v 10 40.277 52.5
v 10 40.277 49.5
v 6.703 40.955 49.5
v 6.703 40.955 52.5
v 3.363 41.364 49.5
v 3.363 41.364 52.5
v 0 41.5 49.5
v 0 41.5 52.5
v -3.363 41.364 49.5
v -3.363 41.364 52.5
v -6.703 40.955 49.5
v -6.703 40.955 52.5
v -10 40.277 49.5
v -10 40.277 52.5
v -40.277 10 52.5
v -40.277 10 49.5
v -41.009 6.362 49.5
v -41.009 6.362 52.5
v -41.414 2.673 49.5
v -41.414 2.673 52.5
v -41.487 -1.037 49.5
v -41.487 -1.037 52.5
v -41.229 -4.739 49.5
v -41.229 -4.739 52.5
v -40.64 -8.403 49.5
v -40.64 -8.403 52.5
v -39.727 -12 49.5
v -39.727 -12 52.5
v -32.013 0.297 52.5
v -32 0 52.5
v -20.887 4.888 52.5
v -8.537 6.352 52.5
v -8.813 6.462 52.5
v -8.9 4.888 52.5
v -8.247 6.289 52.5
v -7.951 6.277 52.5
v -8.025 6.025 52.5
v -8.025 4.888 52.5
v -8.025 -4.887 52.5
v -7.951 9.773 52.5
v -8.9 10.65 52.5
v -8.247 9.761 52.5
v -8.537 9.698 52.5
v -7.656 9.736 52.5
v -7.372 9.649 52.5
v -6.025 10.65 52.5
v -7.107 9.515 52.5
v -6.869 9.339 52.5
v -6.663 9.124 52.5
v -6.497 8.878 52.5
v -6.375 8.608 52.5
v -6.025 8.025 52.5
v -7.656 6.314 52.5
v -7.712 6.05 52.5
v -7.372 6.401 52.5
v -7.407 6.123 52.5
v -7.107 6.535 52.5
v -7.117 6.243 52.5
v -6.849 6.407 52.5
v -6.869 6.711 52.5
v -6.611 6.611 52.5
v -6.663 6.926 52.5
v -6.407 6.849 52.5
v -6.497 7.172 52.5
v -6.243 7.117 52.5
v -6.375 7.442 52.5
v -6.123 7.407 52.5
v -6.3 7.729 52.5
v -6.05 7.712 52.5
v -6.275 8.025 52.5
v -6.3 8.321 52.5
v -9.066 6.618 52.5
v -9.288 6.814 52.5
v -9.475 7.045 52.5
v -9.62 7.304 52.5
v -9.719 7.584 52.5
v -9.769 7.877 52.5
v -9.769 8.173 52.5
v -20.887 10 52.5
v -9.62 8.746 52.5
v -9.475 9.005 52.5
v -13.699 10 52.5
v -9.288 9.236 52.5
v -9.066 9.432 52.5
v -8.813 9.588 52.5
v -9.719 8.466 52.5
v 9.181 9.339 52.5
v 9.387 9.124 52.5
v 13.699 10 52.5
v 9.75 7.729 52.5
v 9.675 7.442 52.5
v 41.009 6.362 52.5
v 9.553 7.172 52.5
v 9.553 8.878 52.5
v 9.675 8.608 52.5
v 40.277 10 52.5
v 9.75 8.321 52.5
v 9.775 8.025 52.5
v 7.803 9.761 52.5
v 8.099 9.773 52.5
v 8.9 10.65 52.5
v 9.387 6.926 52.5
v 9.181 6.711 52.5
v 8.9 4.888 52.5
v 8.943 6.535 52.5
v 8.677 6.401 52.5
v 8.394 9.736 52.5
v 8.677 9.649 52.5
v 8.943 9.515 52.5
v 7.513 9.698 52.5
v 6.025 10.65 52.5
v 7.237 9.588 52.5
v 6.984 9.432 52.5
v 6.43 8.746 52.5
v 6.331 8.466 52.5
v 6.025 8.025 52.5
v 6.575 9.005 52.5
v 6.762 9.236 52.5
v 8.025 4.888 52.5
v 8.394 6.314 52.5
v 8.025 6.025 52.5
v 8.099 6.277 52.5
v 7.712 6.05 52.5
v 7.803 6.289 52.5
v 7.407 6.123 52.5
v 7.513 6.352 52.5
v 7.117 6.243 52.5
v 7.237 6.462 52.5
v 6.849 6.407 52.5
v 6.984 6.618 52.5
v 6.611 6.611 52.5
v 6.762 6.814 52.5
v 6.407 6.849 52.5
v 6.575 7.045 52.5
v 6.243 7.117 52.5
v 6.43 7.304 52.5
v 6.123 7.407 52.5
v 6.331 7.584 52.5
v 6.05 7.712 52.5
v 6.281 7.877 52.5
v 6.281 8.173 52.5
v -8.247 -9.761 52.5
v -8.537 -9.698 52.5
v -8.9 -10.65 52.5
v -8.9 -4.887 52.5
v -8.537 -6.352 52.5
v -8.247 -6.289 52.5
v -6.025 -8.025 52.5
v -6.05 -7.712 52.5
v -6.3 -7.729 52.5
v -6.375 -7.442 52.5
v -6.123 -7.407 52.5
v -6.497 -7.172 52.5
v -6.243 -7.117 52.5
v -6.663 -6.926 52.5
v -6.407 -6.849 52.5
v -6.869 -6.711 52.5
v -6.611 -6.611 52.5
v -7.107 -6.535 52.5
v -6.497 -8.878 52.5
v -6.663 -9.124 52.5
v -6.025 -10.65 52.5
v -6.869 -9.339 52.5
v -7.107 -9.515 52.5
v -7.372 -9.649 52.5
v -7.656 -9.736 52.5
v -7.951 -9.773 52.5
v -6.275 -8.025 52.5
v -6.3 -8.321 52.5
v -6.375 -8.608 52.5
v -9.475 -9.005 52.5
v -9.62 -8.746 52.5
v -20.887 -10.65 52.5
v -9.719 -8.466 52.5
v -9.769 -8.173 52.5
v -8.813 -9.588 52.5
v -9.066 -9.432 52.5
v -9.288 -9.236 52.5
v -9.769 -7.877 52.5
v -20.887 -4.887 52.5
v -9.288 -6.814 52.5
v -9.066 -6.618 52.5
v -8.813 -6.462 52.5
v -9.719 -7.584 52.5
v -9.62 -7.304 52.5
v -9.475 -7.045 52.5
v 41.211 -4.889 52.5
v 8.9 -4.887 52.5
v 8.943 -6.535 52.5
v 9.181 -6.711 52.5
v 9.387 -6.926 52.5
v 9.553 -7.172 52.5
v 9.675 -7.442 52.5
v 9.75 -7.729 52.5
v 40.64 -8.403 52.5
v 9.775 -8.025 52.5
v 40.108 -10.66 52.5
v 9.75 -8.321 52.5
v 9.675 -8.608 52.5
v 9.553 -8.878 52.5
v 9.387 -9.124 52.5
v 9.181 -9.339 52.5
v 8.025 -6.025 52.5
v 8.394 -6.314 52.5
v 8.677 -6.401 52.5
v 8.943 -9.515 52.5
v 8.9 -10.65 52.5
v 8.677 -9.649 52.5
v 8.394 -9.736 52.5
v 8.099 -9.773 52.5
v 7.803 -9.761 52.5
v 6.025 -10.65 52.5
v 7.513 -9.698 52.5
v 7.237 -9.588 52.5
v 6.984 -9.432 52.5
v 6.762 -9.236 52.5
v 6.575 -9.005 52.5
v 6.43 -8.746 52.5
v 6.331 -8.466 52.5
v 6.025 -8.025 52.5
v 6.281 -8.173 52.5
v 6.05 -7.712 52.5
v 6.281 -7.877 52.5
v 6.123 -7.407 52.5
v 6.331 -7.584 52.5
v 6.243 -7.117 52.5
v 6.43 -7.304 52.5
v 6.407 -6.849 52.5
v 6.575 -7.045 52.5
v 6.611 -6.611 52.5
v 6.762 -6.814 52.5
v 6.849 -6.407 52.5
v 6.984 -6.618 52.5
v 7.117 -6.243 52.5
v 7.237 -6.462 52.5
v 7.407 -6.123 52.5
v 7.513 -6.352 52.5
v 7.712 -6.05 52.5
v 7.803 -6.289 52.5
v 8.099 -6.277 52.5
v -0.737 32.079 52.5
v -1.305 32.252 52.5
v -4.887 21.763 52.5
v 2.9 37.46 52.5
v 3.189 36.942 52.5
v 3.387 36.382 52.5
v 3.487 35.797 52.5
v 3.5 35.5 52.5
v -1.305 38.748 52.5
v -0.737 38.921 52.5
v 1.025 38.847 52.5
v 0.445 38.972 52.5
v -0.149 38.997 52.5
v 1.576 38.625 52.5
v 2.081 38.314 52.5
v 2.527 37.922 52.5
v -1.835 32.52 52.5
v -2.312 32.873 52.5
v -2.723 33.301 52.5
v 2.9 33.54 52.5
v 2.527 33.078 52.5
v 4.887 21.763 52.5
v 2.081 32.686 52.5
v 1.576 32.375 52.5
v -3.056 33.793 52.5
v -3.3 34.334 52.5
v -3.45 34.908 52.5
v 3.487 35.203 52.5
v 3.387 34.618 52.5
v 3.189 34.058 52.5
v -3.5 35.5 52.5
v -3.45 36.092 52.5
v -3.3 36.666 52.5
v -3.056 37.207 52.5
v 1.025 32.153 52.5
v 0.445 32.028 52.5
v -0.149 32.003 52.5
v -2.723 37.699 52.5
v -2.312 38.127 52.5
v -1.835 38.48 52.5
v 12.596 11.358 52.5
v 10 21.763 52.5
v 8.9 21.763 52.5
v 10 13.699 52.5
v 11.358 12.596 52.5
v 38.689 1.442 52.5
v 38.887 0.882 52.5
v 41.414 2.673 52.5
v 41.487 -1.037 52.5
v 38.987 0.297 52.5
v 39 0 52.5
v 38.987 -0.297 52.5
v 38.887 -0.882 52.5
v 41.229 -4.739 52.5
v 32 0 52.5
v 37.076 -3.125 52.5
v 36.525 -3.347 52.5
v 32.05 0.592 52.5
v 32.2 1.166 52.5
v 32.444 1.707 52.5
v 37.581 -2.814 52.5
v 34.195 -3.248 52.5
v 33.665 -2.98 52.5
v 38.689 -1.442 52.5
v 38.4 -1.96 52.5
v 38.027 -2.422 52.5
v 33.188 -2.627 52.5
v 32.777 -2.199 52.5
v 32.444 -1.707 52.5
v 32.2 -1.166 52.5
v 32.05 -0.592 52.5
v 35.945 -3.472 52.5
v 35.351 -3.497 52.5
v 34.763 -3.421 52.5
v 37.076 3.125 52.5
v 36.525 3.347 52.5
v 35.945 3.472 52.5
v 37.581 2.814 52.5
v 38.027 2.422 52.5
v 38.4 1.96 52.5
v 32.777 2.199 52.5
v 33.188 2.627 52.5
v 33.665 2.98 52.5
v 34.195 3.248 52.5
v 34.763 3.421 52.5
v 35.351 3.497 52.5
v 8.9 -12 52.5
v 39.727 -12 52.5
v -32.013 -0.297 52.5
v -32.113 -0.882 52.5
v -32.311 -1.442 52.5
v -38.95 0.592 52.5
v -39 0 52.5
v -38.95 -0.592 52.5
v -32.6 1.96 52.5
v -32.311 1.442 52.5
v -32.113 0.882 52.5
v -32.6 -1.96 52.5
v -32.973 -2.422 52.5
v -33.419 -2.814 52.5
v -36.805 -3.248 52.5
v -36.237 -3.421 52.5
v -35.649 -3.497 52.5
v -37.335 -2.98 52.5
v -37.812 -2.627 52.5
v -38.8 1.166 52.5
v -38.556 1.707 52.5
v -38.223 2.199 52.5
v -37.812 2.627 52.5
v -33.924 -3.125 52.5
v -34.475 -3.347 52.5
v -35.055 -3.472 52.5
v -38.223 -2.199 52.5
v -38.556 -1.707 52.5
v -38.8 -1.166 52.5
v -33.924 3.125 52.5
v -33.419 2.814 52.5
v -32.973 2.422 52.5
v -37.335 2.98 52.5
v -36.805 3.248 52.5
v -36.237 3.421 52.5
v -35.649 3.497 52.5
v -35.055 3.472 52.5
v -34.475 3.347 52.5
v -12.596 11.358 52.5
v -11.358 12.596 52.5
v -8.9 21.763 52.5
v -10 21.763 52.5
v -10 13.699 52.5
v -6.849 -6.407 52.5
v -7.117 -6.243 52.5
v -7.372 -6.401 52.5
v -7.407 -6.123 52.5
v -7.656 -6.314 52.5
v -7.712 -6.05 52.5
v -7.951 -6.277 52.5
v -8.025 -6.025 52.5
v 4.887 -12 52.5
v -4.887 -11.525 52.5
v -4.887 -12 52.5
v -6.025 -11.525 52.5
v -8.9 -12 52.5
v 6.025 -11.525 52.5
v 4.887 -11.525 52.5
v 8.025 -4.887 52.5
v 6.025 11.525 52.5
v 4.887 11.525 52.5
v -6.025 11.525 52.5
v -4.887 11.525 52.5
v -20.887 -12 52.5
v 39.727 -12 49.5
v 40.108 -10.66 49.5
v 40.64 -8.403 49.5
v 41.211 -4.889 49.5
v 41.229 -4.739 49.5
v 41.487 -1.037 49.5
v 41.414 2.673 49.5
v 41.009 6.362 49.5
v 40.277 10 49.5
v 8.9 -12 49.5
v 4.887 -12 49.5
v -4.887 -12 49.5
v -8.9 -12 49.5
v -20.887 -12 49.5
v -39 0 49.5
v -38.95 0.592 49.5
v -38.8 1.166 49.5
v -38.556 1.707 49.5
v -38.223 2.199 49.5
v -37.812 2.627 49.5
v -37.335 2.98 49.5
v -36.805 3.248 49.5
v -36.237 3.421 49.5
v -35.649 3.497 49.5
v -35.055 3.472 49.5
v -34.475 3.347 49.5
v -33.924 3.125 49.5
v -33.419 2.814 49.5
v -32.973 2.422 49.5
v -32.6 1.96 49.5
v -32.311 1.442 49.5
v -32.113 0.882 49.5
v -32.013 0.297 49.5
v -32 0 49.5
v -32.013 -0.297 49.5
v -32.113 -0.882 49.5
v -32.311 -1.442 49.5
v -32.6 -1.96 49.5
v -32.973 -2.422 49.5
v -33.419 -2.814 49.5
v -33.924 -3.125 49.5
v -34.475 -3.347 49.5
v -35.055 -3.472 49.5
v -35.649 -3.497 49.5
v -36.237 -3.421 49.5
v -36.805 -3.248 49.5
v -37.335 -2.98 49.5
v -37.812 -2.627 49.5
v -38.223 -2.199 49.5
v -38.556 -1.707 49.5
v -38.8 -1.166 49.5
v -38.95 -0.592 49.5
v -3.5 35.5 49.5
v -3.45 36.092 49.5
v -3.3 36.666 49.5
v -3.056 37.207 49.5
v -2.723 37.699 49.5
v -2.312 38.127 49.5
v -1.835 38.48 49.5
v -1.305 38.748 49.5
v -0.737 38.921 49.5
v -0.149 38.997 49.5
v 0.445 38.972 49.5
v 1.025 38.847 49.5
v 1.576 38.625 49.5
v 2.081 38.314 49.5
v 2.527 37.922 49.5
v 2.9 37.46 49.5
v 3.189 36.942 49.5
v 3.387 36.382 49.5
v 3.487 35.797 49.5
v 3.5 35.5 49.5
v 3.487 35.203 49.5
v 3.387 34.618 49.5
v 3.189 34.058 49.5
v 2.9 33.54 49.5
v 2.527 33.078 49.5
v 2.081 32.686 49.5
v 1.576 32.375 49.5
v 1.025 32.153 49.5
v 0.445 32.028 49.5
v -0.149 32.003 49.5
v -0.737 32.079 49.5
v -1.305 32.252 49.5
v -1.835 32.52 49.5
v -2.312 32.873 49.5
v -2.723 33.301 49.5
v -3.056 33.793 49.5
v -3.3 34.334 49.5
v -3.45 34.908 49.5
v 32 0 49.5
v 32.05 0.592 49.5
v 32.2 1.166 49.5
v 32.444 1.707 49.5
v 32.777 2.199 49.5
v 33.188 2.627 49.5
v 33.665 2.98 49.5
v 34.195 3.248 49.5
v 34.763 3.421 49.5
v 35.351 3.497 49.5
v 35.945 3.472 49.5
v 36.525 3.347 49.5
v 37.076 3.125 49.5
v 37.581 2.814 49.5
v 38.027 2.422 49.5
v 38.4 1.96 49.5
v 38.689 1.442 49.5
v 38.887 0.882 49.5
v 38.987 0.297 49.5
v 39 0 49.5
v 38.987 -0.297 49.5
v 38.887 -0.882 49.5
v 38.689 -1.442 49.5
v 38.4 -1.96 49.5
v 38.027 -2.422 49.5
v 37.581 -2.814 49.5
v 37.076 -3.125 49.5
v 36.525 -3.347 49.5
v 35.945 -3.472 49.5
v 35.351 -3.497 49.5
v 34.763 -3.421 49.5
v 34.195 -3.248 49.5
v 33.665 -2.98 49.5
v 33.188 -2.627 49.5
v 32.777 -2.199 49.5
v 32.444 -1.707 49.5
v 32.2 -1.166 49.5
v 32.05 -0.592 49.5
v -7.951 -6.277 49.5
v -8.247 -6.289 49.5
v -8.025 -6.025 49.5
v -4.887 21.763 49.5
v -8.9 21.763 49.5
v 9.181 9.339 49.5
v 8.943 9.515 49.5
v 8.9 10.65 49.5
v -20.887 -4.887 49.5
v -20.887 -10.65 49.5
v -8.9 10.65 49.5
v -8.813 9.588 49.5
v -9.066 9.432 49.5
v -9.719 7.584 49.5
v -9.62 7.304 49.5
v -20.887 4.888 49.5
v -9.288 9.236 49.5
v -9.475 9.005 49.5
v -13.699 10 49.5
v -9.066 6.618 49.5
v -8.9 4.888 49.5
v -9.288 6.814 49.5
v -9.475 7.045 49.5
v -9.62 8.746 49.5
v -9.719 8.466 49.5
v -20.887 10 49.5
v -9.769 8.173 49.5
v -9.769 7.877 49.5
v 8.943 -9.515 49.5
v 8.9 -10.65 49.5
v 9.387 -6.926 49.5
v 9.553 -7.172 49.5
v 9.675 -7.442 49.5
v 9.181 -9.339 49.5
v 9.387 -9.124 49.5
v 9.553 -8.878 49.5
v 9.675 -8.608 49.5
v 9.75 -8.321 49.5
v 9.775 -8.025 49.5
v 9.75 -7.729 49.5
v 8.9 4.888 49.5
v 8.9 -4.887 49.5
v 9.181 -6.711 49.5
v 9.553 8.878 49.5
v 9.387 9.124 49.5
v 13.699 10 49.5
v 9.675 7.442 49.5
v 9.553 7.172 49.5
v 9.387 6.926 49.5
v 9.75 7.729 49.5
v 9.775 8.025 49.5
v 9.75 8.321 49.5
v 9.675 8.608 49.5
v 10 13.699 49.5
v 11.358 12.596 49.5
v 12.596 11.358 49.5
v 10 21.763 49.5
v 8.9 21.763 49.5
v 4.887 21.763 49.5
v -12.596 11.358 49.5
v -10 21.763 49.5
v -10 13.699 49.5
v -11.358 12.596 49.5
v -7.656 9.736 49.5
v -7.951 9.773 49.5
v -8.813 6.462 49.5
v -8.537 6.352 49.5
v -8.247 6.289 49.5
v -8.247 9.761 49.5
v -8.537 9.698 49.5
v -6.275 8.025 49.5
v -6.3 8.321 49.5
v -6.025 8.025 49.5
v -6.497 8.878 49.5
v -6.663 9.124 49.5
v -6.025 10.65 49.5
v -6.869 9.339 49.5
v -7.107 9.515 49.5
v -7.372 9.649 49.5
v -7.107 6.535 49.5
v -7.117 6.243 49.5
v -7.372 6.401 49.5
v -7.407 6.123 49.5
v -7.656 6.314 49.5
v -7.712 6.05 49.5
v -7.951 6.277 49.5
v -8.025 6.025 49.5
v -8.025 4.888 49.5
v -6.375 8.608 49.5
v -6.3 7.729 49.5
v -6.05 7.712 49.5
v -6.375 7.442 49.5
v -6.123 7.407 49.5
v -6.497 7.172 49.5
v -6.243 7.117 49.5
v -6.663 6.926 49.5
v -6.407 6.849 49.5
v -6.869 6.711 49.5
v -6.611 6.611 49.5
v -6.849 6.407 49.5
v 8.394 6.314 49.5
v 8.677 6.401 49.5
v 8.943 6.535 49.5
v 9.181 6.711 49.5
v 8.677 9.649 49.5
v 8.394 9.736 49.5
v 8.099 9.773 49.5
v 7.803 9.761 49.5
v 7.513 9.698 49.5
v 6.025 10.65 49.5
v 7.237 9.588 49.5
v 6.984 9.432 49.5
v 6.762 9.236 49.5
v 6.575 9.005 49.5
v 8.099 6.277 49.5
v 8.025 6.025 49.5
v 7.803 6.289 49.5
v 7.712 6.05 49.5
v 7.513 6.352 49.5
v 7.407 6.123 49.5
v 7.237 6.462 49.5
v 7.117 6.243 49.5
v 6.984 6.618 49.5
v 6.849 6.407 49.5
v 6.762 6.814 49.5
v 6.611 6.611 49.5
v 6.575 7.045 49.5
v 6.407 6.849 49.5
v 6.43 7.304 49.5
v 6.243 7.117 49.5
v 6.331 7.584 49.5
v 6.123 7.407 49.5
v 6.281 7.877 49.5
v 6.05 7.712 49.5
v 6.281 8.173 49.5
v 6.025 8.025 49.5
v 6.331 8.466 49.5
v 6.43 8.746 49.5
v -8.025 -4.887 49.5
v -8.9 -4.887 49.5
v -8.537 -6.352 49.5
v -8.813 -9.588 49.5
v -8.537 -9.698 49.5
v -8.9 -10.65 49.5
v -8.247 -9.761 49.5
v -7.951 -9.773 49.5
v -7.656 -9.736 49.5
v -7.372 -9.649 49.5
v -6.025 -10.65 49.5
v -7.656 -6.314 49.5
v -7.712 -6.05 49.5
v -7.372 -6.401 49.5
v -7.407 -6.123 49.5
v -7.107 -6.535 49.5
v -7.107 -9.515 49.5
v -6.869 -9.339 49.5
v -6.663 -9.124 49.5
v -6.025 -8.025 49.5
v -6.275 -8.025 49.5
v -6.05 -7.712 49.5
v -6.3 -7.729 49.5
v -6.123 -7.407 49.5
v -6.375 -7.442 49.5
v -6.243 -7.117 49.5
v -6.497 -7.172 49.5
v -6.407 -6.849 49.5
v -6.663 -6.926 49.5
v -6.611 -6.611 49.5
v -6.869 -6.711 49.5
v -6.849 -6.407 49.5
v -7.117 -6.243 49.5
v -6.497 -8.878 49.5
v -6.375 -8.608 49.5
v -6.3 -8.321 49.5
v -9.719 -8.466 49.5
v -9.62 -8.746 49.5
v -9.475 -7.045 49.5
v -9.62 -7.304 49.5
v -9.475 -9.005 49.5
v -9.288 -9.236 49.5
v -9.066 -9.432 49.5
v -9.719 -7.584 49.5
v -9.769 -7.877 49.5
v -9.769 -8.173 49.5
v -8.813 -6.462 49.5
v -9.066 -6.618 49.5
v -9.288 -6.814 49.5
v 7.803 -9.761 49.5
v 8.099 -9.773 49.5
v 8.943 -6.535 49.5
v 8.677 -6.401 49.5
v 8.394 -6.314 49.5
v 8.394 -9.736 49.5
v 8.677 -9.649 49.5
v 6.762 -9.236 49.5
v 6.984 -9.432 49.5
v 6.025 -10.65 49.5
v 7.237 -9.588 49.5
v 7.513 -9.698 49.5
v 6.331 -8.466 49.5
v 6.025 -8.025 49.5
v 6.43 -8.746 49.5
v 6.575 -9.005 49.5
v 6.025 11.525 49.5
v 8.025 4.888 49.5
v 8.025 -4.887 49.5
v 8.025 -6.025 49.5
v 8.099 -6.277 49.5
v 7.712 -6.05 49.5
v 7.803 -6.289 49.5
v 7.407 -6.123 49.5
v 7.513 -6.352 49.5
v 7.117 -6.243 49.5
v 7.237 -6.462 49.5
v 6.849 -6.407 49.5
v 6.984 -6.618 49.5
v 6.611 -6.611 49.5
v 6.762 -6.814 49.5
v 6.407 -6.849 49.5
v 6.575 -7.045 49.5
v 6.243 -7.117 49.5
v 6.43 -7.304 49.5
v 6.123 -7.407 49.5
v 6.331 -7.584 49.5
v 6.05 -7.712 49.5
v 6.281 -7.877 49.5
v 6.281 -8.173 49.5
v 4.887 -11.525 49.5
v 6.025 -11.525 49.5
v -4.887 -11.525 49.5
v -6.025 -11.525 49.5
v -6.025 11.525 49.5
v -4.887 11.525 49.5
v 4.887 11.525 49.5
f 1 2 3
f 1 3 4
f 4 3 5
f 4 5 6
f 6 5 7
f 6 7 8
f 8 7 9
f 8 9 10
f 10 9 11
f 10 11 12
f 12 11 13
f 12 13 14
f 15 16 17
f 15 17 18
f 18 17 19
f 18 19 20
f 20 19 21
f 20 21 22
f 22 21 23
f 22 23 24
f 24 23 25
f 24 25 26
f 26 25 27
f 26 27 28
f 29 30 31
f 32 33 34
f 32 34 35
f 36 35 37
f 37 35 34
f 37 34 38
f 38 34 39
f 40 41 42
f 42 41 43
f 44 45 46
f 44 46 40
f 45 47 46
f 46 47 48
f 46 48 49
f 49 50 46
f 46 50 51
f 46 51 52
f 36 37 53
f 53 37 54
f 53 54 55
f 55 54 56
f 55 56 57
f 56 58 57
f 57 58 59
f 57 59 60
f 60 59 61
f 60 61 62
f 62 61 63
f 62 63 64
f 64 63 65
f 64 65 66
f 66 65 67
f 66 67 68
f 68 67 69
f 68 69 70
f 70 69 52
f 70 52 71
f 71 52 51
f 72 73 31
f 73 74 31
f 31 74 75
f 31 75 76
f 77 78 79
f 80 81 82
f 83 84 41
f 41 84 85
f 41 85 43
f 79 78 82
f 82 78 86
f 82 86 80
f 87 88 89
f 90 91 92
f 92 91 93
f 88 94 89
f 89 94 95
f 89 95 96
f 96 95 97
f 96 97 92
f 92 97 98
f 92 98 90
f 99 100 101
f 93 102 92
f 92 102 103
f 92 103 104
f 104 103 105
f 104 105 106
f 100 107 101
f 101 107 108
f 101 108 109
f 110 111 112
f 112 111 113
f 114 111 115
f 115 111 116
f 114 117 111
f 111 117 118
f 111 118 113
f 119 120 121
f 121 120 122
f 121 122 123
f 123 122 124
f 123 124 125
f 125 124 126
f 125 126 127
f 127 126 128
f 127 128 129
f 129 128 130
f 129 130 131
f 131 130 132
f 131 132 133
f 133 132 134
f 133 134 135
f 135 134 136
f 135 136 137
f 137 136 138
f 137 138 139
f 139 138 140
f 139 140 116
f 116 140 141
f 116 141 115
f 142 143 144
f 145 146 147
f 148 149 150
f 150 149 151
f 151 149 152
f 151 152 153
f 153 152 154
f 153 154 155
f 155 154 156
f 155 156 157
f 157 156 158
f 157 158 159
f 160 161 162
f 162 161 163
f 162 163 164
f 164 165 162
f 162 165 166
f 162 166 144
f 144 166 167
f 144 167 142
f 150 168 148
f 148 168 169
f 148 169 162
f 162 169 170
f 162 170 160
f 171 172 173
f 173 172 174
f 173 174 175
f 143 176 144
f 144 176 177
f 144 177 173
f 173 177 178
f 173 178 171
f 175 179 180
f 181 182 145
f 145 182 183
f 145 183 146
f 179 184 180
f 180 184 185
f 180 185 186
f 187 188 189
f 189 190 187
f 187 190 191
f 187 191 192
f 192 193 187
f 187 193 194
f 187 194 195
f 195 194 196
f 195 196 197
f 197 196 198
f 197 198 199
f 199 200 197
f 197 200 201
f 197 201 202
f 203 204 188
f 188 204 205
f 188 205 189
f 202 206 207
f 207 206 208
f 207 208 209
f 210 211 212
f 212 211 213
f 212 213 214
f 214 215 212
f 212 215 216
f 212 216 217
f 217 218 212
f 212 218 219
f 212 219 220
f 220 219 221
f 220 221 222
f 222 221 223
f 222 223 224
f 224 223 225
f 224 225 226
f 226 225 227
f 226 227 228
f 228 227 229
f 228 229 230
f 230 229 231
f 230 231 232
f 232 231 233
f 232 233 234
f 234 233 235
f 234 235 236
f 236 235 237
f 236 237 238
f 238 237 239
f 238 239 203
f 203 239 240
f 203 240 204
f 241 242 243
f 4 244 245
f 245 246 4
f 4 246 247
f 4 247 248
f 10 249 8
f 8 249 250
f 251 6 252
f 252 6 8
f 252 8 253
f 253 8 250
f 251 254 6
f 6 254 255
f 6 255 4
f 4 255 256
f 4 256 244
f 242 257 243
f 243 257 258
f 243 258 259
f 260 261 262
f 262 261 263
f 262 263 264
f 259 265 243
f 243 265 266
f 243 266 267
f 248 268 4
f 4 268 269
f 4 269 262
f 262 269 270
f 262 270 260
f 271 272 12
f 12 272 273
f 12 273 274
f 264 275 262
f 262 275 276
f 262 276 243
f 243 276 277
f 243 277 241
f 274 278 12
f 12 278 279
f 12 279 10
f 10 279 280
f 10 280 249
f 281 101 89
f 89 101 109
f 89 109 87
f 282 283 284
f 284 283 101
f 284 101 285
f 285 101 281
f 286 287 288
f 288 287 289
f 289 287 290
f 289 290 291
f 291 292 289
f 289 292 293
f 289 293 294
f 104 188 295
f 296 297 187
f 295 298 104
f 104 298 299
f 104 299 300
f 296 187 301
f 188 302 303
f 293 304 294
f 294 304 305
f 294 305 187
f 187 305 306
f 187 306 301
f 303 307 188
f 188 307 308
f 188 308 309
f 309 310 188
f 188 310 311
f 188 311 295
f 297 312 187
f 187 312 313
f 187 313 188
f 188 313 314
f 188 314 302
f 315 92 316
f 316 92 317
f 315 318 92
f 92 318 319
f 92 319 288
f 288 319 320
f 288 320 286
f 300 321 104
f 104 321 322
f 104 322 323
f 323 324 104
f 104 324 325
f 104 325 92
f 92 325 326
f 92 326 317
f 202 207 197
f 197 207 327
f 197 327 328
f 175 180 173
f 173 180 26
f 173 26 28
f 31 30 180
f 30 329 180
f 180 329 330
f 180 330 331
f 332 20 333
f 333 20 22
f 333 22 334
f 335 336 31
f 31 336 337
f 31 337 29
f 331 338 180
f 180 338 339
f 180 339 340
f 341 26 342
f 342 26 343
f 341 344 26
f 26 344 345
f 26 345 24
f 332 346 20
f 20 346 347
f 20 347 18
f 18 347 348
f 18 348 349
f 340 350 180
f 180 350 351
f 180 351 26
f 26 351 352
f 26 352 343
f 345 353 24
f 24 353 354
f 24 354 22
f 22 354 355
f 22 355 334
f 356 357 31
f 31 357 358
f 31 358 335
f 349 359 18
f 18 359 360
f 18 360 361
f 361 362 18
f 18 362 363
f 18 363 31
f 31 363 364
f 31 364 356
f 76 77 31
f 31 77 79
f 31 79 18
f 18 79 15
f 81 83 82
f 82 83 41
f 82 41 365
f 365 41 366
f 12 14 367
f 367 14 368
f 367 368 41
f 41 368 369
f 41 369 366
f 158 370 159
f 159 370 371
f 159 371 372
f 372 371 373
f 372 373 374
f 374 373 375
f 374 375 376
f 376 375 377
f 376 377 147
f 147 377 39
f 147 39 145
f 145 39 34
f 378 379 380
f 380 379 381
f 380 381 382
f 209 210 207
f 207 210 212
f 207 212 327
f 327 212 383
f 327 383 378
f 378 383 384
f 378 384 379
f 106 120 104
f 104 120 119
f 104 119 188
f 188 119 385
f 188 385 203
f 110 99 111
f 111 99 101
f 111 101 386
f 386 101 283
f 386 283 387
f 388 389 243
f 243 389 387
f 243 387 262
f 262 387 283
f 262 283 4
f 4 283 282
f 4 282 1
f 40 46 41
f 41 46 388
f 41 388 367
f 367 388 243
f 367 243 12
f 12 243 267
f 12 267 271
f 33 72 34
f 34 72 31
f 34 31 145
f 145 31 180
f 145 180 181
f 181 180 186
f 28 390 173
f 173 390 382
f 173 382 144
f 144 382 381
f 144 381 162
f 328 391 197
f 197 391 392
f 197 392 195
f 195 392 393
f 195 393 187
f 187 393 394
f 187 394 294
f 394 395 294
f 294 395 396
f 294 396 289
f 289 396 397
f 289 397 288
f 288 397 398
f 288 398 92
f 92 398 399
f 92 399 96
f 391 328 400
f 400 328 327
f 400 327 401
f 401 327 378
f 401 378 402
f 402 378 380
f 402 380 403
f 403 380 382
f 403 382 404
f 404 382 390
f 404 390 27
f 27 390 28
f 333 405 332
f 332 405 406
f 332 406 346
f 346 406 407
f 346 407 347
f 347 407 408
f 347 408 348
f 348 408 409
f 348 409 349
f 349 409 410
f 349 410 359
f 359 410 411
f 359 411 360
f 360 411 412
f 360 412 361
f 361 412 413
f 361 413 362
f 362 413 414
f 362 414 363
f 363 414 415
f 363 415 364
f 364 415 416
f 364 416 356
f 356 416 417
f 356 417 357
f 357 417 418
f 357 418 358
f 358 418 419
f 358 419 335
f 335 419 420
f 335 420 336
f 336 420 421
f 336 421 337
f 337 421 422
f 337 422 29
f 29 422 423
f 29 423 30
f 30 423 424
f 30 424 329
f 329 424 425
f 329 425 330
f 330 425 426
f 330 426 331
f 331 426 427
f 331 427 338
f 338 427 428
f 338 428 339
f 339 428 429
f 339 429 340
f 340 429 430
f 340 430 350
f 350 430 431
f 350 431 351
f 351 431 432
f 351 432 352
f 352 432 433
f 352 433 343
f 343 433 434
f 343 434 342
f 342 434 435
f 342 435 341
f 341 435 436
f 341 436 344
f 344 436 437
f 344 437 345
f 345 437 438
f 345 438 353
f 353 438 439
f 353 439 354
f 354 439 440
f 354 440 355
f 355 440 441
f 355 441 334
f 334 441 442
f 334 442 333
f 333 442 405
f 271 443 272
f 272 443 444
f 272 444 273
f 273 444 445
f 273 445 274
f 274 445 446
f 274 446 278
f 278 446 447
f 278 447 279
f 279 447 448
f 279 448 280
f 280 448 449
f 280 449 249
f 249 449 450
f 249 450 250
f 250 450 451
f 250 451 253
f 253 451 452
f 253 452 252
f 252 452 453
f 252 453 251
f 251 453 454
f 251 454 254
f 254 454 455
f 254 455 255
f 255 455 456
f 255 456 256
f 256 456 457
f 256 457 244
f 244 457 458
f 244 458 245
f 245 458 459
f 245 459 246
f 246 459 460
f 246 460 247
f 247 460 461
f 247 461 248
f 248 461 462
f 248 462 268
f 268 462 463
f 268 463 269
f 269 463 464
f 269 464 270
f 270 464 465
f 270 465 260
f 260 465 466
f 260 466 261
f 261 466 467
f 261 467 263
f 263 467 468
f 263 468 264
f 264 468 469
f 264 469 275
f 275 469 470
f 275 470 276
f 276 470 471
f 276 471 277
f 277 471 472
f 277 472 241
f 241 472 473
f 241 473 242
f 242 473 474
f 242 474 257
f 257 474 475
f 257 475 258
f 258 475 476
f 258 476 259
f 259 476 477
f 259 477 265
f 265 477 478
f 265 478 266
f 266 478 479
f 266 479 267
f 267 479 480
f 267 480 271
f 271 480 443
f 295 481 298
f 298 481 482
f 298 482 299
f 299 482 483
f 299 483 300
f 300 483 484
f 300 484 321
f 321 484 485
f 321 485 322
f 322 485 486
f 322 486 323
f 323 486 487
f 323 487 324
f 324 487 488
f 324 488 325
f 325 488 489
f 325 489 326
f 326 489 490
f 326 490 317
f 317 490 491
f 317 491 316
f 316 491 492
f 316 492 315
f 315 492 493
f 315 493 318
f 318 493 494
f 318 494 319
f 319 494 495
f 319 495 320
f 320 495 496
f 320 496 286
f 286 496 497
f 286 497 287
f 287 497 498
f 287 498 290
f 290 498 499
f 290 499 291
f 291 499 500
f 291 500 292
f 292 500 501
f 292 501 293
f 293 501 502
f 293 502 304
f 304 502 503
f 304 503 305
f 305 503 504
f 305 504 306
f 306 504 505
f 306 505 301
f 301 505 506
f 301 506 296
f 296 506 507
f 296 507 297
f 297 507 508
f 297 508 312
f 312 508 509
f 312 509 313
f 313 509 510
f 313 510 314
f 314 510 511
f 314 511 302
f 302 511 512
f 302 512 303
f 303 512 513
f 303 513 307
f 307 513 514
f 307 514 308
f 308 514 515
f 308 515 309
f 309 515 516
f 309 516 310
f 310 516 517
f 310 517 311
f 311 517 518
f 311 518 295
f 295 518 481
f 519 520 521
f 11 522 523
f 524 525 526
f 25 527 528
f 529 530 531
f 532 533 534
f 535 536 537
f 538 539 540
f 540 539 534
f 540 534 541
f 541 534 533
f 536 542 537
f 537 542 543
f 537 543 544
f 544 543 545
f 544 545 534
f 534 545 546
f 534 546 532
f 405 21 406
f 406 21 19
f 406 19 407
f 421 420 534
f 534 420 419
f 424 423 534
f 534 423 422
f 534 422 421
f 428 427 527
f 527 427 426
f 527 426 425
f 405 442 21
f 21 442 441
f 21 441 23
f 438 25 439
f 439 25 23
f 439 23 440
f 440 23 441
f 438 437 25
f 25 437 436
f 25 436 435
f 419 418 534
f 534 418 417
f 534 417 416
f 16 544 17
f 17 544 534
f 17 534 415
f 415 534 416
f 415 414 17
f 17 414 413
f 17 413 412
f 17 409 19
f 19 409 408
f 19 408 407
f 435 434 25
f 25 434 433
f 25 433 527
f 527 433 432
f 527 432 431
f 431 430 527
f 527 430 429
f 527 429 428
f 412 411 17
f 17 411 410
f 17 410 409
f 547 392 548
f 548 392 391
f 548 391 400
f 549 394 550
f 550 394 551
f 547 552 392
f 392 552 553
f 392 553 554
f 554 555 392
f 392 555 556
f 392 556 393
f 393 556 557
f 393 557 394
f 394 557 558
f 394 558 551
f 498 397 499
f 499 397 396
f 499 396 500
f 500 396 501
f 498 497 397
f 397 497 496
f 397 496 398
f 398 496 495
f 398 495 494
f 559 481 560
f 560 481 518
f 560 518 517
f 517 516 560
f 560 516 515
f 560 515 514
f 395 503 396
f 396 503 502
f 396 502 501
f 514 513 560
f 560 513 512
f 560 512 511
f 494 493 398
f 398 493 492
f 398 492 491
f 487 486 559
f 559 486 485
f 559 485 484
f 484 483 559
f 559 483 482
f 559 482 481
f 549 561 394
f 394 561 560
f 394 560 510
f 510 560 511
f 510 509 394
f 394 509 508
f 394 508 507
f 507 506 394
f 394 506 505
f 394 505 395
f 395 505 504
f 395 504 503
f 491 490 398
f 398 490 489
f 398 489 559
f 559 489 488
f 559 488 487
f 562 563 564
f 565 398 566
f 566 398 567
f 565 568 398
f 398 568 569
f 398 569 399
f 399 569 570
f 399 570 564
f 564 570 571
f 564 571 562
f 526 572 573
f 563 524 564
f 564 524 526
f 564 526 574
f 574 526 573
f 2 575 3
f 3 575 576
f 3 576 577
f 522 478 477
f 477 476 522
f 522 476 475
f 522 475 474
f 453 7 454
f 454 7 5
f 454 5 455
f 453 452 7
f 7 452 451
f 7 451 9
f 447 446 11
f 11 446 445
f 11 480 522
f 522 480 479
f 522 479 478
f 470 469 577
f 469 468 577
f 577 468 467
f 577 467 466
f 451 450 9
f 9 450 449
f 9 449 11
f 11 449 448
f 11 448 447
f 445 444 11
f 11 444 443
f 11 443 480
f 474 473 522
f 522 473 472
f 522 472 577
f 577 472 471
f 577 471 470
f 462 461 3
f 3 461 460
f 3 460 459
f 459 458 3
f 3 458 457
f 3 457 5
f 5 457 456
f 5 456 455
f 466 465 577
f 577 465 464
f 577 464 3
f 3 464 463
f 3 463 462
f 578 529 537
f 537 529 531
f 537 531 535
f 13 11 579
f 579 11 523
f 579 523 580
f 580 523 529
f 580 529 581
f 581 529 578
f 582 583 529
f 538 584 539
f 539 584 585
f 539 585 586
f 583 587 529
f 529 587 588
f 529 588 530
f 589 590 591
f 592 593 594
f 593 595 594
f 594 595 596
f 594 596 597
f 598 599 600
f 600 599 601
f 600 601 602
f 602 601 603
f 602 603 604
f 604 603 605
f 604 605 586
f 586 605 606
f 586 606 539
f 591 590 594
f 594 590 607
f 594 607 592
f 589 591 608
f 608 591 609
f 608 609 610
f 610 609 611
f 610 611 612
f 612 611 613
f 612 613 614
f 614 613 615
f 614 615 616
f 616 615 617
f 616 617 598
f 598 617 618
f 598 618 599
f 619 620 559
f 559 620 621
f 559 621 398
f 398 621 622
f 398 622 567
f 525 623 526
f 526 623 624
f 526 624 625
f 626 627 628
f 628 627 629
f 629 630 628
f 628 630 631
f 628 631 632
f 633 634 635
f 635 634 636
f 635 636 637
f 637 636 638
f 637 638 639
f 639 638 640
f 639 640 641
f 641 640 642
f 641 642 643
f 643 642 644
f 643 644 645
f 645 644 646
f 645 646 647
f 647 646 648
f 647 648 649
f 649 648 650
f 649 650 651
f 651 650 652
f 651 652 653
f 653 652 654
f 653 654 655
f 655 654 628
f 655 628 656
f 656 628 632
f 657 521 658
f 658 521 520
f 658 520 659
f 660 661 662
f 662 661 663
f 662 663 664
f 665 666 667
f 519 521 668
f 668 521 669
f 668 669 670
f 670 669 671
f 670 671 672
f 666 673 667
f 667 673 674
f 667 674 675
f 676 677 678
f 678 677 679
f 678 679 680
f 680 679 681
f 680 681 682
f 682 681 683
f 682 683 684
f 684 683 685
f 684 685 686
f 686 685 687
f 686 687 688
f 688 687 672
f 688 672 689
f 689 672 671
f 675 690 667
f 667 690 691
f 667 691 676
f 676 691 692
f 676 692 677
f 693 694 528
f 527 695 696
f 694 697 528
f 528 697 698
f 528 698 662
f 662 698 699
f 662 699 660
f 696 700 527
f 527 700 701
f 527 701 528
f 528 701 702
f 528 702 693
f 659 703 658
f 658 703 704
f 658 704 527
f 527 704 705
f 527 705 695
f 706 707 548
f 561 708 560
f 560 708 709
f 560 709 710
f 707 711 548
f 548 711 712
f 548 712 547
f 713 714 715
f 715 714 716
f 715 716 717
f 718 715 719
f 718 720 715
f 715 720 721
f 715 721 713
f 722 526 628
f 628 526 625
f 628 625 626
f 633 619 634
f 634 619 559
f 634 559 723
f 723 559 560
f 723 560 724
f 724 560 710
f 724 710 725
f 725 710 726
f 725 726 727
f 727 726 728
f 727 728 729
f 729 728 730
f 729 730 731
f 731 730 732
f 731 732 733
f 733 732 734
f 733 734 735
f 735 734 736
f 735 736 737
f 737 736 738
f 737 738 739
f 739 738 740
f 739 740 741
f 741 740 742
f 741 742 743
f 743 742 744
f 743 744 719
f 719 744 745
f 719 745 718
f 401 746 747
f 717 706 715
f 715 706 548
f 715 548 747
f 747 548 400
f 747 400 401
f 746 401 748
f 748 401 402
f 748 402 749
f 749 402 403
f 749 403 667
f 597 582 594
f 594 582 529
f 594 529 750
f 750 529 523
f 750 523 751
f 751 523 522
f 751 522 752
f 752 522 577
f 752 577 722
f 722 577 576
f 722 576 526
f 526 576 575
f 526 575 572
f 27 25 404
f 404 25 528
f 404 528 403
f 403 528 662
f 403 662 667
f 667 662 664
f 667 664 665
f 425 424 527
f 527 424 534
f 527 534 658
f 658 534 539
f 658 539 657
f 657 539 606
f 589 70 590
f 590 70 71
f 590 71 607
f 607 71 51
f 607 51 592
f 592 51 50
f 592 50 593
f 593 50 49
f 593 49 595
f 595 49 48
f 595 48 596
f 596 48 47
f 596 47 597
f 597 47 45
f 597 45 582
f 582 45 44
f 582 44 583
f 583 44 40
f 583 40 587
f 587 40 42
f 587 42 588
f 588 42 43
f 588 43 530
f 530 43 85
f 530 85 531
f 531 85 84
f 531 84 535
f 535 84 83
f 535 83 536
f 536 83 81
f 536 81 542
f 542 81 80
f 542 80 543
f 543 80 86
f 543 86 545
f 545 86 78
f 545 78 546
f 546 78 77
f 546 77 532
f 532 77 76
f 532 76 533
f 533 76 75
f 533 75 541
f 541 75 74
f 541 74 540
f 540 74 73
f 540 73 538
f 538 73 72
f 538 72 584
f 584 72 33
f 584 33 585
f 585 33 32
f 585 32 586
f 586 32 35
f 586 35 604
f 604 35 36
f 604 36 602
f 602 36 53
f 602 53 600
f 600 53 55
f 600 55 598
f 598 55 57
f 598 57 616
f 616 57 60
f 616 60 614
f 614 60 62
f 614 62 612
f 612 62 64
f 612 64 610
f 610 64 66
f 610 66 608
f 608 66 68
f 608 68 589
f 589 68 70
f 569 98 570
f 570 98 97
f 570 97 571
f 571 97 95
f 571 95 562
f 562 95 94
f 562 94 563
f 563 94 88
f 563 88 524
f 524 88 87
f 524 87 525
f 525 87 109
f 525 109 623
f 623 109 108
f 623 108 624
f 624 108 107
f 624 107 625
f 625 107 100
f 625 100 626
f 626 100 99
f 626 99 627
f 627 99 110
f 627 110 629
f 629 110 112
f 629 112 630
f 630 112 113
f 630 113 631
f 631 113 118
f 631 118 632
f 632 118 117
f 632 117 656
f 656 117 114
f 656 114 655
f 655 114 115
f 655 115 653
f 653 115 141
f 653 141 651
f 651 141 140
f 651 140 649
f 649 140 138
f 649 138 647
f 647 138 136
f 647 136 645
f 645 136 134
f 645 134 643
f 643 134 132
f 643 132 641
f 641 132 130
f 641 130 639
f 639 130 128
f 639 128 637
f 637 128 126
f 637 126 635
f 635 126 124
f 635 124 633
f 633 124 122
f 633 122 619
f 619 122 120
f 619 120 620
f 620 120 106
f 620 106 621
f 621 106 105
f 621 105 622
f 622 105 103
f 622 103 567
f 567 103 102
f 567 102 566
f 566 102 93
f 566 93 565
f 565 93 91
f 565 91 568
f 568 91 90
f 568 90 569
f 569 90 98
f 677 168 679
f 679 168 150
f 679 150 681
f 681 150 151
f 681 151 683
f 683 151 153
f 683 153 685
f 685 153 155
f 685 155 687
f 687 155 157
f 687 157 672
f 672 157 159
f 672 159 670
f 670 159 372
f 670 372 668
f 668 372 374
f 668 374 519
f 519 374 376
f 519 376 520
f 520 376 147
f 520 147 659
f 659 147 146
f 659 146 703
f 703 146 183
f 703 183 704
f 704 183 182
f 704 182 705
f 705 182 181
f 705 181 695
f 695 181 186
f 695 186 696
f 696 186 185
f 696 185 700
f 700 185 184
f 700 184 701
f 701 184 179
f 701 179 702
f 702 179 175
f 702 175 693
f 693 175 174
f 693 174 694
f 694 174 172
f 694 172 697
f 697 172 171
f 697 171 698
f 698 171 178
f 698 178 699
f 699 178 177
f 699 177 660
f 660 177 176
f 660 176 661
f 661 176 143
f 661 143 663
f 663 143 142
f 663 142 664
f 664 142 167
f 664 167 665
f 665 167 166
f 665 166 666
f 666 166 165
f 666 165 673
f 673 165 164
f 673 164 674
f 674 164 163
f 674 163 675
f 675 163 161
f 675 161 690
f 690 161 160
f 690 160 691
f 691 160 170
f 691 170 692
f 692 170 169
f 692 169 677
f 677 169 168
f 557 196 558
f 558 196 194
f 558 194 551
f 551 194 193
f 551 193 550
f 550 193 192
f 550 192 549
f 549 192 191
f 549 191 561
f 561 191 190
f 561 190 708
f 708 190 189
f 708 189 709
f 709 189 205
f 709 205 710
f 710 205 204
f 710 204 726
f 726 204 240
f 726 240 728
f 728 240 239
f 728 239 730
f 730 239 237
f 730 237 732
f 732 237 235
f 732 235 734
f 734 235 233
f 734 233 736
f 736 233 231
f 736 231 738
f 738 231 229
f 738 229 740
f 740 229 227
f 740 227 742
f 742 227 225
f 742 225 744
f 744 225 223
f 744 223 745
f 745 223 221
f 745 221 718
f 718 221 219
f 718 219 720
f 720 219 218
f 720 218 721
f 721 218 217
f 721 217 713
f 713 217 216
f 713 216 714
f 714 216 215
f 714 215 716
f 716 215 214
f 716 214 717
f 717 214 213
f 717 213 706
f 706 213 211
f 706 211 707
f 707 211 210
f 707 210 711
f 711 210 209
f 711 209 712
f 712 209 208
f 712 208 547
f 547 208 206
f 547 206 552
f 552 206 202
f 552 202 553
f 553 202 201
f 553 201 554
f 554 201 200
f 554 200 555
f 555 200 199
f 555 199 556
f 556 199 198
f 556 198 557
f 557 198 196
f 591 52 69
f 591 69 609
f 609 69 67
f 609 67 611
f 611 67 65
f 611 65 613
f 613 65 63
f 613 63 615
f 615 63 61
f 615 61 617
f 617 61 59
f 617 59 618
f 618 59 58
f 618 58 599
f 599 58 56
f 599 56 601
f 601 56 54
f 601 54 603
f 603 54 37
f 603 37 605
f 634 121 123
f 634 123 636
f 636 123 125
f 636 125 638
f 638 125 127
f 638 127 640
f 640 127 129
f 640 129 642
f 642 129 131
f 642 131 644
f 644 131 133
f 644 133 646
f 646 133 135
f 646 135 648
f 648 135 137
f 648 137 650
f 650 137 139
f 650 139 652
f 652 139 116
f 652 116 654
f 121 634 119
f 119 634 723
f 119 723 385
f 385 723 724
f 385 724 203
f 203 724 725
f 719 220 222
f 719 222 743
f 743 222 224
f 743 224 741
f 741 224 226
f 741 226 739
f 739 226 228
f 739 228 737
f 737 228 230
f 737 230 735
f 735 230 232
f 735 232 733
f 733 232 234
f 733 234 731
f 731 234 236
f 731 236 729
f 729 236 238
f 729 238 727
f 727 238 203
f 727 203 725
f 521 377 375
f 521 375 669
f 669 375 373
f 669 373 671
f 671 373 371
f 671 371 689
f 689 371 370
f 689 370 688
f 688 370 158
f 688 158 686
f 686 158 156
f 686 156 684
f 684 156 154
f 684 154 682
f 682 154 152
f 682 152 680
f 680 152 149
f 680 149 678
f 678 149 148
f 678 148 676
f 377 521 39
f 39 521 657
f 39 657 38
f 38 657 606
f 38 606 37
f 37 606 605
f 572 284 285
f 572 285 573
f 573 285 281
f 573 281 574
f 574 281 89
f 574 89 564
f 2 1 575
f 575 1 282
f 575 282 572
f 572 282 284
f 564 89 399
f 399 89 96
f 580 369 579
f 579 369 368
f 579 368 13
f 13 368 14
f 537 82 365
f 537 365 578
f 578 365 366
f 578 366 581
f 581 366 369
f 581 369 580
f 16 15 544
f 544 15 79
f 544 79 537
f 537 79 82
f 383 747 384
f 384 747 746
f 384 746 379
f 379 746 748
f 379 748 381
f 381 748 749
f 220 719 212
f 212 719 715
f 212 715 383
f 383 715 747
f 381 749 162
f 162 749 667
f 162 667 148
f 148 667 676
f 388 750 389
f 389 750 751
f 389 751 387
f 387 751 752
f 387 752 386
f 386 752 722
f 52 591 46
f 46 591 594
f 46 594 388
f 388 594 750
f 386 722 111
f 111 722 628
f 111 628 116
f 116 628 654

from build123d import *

# Parameters (mm, degrees)
CROQUIS1_R              = 3.5
SALIENTE_EXTRUIR1_DEPTH = 52.5
SALIENTE_EXTRUIR2_START = -3
CROQUIS2_R              = 29.5
CROQUIS2_R_2            = 1.75
SALIENTE_EXTRUIR2_DEPTH = 3
CORTAR_EXTRUIR1_DEPTH   = 79.744841101
CORTAR_EXTRUIR2_DEPTH   = 79.744841101
CORTAR_EXTRUIR3_DEPTH   = 79.744841101
CROQUIS7_W              = 12.05
CROQUIS7_H              = 3.5
CORTAR_EXTRUIR4_DEPTH   = 79.744841101
CROQUIS8_W              = 98.89383178
CROQUIS8_H              = 87.653821396
CORTAR_EXTRUIR5_DEPTH   = 49.5


with BuildPart() as part:
    # Croquis1 → Saliente-Extruir1 (new body)
    with BuildSketch(Plane.XY):
        with BuildLine():
            Line((-39.727194716, -12), (-26.949025956, -12))
            ThreePointArc((-26.949025956, -12), (0, 29.5), (26.949025956, -12))
            Line((26.949025956, -12), (39.727194716, -12))
            ThreePointArc((39.727194716, -12), (0, 41.5), (-39.727194716, -12))
        make_face()
        with Locations((-35.5, 0)):
            Circle(CROQUIS1_R, mode=Mode.SUBTRACT)
        with Locations((0, 35.5)):
            Circle(CROQUIS1_R, mode=Mode.SUBTRACT)
        with Locations((35.5, 0)):
            Circle(CROQUIS1_R, mode=Mode.SUBTRACT)
    extrude(amount=SALIENTE_EXTRUIR1_DEPTH)

    # Croquis2 → Saliente-Extruir2 (add)
    with BuildSketch(Plane.XY.offset(52.5).offset(SALIENTE_EXTRUIR2_START)):
        Circle(CROQUIS2_R)
        with Locations((-8.025, 8.025)):
            Circle(CROQUIS2_R_2, mode=Mode.SUBTRACT)
        with Locations((8.025, 8.025)):
            Circle(CROQUIS2_R_2, mode=Mode.SUBTRACT)
        with Locations((-8.025, -8.025)):
            Circle(CROQUIS2_R_2, mode=Mode.SUBTRACT)
        with Locations((8.025, -8.025)):
            Circle(CROQUIS2_R_2, mode=Mode.SUBTRACT)
    extrude(amount=SALIENTE_EXTRUIR2_DEPTH)

    # Croquis3 → Cortar-Extruir1 (cut, through all)
    with BuildSketch(Plane.XY.offset(52.5)):
        with BuildLine():
            Line((-8.025, 6.025), (-8.025, -6.025))
            ThreePointArc((-8.025, -6.025), (-6.610786438, -6.610786438), (-6.025, -8.025))
            Line((-6.025, -8.025), (6.025, -8.025))
            ThreePointArc((6.025, -8.025), (6.610786438, -6.610786438), (8.025, -6.025))
            Line((8.025, -6.025), (8.025, 6.025))
            ThreePointArc((8.025, 6.025), (6.610786438, 6.610786438), (6.025, 8.025))
            Line((6.025, 8.025), (-6.025, 8.025))
            ThreePointArc((-6.025, 8.025), (-6.610786438, 6.610786438), (-8.025, 6.025))
        make_face()
    extrude(amount=-CORTAR_EXTRUIR1_DEPTH, mode=Mode.SUBTRACT)

    # Croquis5 → Cortar-Extruir2 (cut, through all)
    with BuildSketch(Plane.XY.offset(52.5)):
        Polygon((-26.949025956, -12), (26.949025956, -12), (26.949025956, -33.158311757), (-29.290832667, -29.730661126), align=None)
    extrude(amount=-CORTAR_EXTRUIR2_DEPTH, mode=Mode.SUBTRACT)

    # Croquis6 → Cortar-Extruir3 (cut, through all)
    with BuildSketch(Plane.XY.offset(52.5)):
        with BuildLine():
            Line((-40.277164746, 10), (-13.698766072, 10))
            ThreePointArc((-13.698766072, 10), (-11.992835192, 11.992835192), (-10, 13.698766072))
            Line((-10, 13.698766072), (-10, 40.277164746))
            ThreePointArc((-10, 40.277164746), (-29.344931419, 29.344931419), (-40.277164746, 10))
        make_face()
        with BuildLine():
            Line((10, 13.698766072), (10, 40.277164746))
            ThreePointArc((10, 40.277164746), (29.344931419, 29.344931419), (40.277164746, 10))
            Line((40.277164746, 10), (13.698766072, 10))
            ThreePointArc((13.698766072, 10), (11.992835192, 11.992835192), (10, 13.698766072))
        make_face()
    extrude(amount=-CORTAR_EXTRUIR3_DEPTH, mode=Mode.SUBTRACT)

    # Croquis7 → Cortar-Extruir4 (cut, through all)
    with BuildSketch(Plane.XY.offset(52.5)):
        with Locations((0, 9.775)):
            Rectangle(CROQUIS7_W, CROQUIS7_H)
        with Locations((0, -9.775)):
            Rectangle(CROQUIS7_W, CROQUIS7_H)
    extrude(amount=-CORTAR_EXTRUIR4_DEPTH, mode=Mode.SUBTRACT)

    # Croquis8 → Cortar-Extruir5 (cut)
    with BuildSketch(Plane(origin=(0, 0, 0), x_dir=(-1, 0, 0), z_dir=(0, 0, -1))):
        Rectangle(CROQUIS8_W, CROQUIS8_H)
    extrude(amount=-CORTAR_EXTRUIR5_DEPTH, mode=Mode.SUBTRACT)


solid = part.part
